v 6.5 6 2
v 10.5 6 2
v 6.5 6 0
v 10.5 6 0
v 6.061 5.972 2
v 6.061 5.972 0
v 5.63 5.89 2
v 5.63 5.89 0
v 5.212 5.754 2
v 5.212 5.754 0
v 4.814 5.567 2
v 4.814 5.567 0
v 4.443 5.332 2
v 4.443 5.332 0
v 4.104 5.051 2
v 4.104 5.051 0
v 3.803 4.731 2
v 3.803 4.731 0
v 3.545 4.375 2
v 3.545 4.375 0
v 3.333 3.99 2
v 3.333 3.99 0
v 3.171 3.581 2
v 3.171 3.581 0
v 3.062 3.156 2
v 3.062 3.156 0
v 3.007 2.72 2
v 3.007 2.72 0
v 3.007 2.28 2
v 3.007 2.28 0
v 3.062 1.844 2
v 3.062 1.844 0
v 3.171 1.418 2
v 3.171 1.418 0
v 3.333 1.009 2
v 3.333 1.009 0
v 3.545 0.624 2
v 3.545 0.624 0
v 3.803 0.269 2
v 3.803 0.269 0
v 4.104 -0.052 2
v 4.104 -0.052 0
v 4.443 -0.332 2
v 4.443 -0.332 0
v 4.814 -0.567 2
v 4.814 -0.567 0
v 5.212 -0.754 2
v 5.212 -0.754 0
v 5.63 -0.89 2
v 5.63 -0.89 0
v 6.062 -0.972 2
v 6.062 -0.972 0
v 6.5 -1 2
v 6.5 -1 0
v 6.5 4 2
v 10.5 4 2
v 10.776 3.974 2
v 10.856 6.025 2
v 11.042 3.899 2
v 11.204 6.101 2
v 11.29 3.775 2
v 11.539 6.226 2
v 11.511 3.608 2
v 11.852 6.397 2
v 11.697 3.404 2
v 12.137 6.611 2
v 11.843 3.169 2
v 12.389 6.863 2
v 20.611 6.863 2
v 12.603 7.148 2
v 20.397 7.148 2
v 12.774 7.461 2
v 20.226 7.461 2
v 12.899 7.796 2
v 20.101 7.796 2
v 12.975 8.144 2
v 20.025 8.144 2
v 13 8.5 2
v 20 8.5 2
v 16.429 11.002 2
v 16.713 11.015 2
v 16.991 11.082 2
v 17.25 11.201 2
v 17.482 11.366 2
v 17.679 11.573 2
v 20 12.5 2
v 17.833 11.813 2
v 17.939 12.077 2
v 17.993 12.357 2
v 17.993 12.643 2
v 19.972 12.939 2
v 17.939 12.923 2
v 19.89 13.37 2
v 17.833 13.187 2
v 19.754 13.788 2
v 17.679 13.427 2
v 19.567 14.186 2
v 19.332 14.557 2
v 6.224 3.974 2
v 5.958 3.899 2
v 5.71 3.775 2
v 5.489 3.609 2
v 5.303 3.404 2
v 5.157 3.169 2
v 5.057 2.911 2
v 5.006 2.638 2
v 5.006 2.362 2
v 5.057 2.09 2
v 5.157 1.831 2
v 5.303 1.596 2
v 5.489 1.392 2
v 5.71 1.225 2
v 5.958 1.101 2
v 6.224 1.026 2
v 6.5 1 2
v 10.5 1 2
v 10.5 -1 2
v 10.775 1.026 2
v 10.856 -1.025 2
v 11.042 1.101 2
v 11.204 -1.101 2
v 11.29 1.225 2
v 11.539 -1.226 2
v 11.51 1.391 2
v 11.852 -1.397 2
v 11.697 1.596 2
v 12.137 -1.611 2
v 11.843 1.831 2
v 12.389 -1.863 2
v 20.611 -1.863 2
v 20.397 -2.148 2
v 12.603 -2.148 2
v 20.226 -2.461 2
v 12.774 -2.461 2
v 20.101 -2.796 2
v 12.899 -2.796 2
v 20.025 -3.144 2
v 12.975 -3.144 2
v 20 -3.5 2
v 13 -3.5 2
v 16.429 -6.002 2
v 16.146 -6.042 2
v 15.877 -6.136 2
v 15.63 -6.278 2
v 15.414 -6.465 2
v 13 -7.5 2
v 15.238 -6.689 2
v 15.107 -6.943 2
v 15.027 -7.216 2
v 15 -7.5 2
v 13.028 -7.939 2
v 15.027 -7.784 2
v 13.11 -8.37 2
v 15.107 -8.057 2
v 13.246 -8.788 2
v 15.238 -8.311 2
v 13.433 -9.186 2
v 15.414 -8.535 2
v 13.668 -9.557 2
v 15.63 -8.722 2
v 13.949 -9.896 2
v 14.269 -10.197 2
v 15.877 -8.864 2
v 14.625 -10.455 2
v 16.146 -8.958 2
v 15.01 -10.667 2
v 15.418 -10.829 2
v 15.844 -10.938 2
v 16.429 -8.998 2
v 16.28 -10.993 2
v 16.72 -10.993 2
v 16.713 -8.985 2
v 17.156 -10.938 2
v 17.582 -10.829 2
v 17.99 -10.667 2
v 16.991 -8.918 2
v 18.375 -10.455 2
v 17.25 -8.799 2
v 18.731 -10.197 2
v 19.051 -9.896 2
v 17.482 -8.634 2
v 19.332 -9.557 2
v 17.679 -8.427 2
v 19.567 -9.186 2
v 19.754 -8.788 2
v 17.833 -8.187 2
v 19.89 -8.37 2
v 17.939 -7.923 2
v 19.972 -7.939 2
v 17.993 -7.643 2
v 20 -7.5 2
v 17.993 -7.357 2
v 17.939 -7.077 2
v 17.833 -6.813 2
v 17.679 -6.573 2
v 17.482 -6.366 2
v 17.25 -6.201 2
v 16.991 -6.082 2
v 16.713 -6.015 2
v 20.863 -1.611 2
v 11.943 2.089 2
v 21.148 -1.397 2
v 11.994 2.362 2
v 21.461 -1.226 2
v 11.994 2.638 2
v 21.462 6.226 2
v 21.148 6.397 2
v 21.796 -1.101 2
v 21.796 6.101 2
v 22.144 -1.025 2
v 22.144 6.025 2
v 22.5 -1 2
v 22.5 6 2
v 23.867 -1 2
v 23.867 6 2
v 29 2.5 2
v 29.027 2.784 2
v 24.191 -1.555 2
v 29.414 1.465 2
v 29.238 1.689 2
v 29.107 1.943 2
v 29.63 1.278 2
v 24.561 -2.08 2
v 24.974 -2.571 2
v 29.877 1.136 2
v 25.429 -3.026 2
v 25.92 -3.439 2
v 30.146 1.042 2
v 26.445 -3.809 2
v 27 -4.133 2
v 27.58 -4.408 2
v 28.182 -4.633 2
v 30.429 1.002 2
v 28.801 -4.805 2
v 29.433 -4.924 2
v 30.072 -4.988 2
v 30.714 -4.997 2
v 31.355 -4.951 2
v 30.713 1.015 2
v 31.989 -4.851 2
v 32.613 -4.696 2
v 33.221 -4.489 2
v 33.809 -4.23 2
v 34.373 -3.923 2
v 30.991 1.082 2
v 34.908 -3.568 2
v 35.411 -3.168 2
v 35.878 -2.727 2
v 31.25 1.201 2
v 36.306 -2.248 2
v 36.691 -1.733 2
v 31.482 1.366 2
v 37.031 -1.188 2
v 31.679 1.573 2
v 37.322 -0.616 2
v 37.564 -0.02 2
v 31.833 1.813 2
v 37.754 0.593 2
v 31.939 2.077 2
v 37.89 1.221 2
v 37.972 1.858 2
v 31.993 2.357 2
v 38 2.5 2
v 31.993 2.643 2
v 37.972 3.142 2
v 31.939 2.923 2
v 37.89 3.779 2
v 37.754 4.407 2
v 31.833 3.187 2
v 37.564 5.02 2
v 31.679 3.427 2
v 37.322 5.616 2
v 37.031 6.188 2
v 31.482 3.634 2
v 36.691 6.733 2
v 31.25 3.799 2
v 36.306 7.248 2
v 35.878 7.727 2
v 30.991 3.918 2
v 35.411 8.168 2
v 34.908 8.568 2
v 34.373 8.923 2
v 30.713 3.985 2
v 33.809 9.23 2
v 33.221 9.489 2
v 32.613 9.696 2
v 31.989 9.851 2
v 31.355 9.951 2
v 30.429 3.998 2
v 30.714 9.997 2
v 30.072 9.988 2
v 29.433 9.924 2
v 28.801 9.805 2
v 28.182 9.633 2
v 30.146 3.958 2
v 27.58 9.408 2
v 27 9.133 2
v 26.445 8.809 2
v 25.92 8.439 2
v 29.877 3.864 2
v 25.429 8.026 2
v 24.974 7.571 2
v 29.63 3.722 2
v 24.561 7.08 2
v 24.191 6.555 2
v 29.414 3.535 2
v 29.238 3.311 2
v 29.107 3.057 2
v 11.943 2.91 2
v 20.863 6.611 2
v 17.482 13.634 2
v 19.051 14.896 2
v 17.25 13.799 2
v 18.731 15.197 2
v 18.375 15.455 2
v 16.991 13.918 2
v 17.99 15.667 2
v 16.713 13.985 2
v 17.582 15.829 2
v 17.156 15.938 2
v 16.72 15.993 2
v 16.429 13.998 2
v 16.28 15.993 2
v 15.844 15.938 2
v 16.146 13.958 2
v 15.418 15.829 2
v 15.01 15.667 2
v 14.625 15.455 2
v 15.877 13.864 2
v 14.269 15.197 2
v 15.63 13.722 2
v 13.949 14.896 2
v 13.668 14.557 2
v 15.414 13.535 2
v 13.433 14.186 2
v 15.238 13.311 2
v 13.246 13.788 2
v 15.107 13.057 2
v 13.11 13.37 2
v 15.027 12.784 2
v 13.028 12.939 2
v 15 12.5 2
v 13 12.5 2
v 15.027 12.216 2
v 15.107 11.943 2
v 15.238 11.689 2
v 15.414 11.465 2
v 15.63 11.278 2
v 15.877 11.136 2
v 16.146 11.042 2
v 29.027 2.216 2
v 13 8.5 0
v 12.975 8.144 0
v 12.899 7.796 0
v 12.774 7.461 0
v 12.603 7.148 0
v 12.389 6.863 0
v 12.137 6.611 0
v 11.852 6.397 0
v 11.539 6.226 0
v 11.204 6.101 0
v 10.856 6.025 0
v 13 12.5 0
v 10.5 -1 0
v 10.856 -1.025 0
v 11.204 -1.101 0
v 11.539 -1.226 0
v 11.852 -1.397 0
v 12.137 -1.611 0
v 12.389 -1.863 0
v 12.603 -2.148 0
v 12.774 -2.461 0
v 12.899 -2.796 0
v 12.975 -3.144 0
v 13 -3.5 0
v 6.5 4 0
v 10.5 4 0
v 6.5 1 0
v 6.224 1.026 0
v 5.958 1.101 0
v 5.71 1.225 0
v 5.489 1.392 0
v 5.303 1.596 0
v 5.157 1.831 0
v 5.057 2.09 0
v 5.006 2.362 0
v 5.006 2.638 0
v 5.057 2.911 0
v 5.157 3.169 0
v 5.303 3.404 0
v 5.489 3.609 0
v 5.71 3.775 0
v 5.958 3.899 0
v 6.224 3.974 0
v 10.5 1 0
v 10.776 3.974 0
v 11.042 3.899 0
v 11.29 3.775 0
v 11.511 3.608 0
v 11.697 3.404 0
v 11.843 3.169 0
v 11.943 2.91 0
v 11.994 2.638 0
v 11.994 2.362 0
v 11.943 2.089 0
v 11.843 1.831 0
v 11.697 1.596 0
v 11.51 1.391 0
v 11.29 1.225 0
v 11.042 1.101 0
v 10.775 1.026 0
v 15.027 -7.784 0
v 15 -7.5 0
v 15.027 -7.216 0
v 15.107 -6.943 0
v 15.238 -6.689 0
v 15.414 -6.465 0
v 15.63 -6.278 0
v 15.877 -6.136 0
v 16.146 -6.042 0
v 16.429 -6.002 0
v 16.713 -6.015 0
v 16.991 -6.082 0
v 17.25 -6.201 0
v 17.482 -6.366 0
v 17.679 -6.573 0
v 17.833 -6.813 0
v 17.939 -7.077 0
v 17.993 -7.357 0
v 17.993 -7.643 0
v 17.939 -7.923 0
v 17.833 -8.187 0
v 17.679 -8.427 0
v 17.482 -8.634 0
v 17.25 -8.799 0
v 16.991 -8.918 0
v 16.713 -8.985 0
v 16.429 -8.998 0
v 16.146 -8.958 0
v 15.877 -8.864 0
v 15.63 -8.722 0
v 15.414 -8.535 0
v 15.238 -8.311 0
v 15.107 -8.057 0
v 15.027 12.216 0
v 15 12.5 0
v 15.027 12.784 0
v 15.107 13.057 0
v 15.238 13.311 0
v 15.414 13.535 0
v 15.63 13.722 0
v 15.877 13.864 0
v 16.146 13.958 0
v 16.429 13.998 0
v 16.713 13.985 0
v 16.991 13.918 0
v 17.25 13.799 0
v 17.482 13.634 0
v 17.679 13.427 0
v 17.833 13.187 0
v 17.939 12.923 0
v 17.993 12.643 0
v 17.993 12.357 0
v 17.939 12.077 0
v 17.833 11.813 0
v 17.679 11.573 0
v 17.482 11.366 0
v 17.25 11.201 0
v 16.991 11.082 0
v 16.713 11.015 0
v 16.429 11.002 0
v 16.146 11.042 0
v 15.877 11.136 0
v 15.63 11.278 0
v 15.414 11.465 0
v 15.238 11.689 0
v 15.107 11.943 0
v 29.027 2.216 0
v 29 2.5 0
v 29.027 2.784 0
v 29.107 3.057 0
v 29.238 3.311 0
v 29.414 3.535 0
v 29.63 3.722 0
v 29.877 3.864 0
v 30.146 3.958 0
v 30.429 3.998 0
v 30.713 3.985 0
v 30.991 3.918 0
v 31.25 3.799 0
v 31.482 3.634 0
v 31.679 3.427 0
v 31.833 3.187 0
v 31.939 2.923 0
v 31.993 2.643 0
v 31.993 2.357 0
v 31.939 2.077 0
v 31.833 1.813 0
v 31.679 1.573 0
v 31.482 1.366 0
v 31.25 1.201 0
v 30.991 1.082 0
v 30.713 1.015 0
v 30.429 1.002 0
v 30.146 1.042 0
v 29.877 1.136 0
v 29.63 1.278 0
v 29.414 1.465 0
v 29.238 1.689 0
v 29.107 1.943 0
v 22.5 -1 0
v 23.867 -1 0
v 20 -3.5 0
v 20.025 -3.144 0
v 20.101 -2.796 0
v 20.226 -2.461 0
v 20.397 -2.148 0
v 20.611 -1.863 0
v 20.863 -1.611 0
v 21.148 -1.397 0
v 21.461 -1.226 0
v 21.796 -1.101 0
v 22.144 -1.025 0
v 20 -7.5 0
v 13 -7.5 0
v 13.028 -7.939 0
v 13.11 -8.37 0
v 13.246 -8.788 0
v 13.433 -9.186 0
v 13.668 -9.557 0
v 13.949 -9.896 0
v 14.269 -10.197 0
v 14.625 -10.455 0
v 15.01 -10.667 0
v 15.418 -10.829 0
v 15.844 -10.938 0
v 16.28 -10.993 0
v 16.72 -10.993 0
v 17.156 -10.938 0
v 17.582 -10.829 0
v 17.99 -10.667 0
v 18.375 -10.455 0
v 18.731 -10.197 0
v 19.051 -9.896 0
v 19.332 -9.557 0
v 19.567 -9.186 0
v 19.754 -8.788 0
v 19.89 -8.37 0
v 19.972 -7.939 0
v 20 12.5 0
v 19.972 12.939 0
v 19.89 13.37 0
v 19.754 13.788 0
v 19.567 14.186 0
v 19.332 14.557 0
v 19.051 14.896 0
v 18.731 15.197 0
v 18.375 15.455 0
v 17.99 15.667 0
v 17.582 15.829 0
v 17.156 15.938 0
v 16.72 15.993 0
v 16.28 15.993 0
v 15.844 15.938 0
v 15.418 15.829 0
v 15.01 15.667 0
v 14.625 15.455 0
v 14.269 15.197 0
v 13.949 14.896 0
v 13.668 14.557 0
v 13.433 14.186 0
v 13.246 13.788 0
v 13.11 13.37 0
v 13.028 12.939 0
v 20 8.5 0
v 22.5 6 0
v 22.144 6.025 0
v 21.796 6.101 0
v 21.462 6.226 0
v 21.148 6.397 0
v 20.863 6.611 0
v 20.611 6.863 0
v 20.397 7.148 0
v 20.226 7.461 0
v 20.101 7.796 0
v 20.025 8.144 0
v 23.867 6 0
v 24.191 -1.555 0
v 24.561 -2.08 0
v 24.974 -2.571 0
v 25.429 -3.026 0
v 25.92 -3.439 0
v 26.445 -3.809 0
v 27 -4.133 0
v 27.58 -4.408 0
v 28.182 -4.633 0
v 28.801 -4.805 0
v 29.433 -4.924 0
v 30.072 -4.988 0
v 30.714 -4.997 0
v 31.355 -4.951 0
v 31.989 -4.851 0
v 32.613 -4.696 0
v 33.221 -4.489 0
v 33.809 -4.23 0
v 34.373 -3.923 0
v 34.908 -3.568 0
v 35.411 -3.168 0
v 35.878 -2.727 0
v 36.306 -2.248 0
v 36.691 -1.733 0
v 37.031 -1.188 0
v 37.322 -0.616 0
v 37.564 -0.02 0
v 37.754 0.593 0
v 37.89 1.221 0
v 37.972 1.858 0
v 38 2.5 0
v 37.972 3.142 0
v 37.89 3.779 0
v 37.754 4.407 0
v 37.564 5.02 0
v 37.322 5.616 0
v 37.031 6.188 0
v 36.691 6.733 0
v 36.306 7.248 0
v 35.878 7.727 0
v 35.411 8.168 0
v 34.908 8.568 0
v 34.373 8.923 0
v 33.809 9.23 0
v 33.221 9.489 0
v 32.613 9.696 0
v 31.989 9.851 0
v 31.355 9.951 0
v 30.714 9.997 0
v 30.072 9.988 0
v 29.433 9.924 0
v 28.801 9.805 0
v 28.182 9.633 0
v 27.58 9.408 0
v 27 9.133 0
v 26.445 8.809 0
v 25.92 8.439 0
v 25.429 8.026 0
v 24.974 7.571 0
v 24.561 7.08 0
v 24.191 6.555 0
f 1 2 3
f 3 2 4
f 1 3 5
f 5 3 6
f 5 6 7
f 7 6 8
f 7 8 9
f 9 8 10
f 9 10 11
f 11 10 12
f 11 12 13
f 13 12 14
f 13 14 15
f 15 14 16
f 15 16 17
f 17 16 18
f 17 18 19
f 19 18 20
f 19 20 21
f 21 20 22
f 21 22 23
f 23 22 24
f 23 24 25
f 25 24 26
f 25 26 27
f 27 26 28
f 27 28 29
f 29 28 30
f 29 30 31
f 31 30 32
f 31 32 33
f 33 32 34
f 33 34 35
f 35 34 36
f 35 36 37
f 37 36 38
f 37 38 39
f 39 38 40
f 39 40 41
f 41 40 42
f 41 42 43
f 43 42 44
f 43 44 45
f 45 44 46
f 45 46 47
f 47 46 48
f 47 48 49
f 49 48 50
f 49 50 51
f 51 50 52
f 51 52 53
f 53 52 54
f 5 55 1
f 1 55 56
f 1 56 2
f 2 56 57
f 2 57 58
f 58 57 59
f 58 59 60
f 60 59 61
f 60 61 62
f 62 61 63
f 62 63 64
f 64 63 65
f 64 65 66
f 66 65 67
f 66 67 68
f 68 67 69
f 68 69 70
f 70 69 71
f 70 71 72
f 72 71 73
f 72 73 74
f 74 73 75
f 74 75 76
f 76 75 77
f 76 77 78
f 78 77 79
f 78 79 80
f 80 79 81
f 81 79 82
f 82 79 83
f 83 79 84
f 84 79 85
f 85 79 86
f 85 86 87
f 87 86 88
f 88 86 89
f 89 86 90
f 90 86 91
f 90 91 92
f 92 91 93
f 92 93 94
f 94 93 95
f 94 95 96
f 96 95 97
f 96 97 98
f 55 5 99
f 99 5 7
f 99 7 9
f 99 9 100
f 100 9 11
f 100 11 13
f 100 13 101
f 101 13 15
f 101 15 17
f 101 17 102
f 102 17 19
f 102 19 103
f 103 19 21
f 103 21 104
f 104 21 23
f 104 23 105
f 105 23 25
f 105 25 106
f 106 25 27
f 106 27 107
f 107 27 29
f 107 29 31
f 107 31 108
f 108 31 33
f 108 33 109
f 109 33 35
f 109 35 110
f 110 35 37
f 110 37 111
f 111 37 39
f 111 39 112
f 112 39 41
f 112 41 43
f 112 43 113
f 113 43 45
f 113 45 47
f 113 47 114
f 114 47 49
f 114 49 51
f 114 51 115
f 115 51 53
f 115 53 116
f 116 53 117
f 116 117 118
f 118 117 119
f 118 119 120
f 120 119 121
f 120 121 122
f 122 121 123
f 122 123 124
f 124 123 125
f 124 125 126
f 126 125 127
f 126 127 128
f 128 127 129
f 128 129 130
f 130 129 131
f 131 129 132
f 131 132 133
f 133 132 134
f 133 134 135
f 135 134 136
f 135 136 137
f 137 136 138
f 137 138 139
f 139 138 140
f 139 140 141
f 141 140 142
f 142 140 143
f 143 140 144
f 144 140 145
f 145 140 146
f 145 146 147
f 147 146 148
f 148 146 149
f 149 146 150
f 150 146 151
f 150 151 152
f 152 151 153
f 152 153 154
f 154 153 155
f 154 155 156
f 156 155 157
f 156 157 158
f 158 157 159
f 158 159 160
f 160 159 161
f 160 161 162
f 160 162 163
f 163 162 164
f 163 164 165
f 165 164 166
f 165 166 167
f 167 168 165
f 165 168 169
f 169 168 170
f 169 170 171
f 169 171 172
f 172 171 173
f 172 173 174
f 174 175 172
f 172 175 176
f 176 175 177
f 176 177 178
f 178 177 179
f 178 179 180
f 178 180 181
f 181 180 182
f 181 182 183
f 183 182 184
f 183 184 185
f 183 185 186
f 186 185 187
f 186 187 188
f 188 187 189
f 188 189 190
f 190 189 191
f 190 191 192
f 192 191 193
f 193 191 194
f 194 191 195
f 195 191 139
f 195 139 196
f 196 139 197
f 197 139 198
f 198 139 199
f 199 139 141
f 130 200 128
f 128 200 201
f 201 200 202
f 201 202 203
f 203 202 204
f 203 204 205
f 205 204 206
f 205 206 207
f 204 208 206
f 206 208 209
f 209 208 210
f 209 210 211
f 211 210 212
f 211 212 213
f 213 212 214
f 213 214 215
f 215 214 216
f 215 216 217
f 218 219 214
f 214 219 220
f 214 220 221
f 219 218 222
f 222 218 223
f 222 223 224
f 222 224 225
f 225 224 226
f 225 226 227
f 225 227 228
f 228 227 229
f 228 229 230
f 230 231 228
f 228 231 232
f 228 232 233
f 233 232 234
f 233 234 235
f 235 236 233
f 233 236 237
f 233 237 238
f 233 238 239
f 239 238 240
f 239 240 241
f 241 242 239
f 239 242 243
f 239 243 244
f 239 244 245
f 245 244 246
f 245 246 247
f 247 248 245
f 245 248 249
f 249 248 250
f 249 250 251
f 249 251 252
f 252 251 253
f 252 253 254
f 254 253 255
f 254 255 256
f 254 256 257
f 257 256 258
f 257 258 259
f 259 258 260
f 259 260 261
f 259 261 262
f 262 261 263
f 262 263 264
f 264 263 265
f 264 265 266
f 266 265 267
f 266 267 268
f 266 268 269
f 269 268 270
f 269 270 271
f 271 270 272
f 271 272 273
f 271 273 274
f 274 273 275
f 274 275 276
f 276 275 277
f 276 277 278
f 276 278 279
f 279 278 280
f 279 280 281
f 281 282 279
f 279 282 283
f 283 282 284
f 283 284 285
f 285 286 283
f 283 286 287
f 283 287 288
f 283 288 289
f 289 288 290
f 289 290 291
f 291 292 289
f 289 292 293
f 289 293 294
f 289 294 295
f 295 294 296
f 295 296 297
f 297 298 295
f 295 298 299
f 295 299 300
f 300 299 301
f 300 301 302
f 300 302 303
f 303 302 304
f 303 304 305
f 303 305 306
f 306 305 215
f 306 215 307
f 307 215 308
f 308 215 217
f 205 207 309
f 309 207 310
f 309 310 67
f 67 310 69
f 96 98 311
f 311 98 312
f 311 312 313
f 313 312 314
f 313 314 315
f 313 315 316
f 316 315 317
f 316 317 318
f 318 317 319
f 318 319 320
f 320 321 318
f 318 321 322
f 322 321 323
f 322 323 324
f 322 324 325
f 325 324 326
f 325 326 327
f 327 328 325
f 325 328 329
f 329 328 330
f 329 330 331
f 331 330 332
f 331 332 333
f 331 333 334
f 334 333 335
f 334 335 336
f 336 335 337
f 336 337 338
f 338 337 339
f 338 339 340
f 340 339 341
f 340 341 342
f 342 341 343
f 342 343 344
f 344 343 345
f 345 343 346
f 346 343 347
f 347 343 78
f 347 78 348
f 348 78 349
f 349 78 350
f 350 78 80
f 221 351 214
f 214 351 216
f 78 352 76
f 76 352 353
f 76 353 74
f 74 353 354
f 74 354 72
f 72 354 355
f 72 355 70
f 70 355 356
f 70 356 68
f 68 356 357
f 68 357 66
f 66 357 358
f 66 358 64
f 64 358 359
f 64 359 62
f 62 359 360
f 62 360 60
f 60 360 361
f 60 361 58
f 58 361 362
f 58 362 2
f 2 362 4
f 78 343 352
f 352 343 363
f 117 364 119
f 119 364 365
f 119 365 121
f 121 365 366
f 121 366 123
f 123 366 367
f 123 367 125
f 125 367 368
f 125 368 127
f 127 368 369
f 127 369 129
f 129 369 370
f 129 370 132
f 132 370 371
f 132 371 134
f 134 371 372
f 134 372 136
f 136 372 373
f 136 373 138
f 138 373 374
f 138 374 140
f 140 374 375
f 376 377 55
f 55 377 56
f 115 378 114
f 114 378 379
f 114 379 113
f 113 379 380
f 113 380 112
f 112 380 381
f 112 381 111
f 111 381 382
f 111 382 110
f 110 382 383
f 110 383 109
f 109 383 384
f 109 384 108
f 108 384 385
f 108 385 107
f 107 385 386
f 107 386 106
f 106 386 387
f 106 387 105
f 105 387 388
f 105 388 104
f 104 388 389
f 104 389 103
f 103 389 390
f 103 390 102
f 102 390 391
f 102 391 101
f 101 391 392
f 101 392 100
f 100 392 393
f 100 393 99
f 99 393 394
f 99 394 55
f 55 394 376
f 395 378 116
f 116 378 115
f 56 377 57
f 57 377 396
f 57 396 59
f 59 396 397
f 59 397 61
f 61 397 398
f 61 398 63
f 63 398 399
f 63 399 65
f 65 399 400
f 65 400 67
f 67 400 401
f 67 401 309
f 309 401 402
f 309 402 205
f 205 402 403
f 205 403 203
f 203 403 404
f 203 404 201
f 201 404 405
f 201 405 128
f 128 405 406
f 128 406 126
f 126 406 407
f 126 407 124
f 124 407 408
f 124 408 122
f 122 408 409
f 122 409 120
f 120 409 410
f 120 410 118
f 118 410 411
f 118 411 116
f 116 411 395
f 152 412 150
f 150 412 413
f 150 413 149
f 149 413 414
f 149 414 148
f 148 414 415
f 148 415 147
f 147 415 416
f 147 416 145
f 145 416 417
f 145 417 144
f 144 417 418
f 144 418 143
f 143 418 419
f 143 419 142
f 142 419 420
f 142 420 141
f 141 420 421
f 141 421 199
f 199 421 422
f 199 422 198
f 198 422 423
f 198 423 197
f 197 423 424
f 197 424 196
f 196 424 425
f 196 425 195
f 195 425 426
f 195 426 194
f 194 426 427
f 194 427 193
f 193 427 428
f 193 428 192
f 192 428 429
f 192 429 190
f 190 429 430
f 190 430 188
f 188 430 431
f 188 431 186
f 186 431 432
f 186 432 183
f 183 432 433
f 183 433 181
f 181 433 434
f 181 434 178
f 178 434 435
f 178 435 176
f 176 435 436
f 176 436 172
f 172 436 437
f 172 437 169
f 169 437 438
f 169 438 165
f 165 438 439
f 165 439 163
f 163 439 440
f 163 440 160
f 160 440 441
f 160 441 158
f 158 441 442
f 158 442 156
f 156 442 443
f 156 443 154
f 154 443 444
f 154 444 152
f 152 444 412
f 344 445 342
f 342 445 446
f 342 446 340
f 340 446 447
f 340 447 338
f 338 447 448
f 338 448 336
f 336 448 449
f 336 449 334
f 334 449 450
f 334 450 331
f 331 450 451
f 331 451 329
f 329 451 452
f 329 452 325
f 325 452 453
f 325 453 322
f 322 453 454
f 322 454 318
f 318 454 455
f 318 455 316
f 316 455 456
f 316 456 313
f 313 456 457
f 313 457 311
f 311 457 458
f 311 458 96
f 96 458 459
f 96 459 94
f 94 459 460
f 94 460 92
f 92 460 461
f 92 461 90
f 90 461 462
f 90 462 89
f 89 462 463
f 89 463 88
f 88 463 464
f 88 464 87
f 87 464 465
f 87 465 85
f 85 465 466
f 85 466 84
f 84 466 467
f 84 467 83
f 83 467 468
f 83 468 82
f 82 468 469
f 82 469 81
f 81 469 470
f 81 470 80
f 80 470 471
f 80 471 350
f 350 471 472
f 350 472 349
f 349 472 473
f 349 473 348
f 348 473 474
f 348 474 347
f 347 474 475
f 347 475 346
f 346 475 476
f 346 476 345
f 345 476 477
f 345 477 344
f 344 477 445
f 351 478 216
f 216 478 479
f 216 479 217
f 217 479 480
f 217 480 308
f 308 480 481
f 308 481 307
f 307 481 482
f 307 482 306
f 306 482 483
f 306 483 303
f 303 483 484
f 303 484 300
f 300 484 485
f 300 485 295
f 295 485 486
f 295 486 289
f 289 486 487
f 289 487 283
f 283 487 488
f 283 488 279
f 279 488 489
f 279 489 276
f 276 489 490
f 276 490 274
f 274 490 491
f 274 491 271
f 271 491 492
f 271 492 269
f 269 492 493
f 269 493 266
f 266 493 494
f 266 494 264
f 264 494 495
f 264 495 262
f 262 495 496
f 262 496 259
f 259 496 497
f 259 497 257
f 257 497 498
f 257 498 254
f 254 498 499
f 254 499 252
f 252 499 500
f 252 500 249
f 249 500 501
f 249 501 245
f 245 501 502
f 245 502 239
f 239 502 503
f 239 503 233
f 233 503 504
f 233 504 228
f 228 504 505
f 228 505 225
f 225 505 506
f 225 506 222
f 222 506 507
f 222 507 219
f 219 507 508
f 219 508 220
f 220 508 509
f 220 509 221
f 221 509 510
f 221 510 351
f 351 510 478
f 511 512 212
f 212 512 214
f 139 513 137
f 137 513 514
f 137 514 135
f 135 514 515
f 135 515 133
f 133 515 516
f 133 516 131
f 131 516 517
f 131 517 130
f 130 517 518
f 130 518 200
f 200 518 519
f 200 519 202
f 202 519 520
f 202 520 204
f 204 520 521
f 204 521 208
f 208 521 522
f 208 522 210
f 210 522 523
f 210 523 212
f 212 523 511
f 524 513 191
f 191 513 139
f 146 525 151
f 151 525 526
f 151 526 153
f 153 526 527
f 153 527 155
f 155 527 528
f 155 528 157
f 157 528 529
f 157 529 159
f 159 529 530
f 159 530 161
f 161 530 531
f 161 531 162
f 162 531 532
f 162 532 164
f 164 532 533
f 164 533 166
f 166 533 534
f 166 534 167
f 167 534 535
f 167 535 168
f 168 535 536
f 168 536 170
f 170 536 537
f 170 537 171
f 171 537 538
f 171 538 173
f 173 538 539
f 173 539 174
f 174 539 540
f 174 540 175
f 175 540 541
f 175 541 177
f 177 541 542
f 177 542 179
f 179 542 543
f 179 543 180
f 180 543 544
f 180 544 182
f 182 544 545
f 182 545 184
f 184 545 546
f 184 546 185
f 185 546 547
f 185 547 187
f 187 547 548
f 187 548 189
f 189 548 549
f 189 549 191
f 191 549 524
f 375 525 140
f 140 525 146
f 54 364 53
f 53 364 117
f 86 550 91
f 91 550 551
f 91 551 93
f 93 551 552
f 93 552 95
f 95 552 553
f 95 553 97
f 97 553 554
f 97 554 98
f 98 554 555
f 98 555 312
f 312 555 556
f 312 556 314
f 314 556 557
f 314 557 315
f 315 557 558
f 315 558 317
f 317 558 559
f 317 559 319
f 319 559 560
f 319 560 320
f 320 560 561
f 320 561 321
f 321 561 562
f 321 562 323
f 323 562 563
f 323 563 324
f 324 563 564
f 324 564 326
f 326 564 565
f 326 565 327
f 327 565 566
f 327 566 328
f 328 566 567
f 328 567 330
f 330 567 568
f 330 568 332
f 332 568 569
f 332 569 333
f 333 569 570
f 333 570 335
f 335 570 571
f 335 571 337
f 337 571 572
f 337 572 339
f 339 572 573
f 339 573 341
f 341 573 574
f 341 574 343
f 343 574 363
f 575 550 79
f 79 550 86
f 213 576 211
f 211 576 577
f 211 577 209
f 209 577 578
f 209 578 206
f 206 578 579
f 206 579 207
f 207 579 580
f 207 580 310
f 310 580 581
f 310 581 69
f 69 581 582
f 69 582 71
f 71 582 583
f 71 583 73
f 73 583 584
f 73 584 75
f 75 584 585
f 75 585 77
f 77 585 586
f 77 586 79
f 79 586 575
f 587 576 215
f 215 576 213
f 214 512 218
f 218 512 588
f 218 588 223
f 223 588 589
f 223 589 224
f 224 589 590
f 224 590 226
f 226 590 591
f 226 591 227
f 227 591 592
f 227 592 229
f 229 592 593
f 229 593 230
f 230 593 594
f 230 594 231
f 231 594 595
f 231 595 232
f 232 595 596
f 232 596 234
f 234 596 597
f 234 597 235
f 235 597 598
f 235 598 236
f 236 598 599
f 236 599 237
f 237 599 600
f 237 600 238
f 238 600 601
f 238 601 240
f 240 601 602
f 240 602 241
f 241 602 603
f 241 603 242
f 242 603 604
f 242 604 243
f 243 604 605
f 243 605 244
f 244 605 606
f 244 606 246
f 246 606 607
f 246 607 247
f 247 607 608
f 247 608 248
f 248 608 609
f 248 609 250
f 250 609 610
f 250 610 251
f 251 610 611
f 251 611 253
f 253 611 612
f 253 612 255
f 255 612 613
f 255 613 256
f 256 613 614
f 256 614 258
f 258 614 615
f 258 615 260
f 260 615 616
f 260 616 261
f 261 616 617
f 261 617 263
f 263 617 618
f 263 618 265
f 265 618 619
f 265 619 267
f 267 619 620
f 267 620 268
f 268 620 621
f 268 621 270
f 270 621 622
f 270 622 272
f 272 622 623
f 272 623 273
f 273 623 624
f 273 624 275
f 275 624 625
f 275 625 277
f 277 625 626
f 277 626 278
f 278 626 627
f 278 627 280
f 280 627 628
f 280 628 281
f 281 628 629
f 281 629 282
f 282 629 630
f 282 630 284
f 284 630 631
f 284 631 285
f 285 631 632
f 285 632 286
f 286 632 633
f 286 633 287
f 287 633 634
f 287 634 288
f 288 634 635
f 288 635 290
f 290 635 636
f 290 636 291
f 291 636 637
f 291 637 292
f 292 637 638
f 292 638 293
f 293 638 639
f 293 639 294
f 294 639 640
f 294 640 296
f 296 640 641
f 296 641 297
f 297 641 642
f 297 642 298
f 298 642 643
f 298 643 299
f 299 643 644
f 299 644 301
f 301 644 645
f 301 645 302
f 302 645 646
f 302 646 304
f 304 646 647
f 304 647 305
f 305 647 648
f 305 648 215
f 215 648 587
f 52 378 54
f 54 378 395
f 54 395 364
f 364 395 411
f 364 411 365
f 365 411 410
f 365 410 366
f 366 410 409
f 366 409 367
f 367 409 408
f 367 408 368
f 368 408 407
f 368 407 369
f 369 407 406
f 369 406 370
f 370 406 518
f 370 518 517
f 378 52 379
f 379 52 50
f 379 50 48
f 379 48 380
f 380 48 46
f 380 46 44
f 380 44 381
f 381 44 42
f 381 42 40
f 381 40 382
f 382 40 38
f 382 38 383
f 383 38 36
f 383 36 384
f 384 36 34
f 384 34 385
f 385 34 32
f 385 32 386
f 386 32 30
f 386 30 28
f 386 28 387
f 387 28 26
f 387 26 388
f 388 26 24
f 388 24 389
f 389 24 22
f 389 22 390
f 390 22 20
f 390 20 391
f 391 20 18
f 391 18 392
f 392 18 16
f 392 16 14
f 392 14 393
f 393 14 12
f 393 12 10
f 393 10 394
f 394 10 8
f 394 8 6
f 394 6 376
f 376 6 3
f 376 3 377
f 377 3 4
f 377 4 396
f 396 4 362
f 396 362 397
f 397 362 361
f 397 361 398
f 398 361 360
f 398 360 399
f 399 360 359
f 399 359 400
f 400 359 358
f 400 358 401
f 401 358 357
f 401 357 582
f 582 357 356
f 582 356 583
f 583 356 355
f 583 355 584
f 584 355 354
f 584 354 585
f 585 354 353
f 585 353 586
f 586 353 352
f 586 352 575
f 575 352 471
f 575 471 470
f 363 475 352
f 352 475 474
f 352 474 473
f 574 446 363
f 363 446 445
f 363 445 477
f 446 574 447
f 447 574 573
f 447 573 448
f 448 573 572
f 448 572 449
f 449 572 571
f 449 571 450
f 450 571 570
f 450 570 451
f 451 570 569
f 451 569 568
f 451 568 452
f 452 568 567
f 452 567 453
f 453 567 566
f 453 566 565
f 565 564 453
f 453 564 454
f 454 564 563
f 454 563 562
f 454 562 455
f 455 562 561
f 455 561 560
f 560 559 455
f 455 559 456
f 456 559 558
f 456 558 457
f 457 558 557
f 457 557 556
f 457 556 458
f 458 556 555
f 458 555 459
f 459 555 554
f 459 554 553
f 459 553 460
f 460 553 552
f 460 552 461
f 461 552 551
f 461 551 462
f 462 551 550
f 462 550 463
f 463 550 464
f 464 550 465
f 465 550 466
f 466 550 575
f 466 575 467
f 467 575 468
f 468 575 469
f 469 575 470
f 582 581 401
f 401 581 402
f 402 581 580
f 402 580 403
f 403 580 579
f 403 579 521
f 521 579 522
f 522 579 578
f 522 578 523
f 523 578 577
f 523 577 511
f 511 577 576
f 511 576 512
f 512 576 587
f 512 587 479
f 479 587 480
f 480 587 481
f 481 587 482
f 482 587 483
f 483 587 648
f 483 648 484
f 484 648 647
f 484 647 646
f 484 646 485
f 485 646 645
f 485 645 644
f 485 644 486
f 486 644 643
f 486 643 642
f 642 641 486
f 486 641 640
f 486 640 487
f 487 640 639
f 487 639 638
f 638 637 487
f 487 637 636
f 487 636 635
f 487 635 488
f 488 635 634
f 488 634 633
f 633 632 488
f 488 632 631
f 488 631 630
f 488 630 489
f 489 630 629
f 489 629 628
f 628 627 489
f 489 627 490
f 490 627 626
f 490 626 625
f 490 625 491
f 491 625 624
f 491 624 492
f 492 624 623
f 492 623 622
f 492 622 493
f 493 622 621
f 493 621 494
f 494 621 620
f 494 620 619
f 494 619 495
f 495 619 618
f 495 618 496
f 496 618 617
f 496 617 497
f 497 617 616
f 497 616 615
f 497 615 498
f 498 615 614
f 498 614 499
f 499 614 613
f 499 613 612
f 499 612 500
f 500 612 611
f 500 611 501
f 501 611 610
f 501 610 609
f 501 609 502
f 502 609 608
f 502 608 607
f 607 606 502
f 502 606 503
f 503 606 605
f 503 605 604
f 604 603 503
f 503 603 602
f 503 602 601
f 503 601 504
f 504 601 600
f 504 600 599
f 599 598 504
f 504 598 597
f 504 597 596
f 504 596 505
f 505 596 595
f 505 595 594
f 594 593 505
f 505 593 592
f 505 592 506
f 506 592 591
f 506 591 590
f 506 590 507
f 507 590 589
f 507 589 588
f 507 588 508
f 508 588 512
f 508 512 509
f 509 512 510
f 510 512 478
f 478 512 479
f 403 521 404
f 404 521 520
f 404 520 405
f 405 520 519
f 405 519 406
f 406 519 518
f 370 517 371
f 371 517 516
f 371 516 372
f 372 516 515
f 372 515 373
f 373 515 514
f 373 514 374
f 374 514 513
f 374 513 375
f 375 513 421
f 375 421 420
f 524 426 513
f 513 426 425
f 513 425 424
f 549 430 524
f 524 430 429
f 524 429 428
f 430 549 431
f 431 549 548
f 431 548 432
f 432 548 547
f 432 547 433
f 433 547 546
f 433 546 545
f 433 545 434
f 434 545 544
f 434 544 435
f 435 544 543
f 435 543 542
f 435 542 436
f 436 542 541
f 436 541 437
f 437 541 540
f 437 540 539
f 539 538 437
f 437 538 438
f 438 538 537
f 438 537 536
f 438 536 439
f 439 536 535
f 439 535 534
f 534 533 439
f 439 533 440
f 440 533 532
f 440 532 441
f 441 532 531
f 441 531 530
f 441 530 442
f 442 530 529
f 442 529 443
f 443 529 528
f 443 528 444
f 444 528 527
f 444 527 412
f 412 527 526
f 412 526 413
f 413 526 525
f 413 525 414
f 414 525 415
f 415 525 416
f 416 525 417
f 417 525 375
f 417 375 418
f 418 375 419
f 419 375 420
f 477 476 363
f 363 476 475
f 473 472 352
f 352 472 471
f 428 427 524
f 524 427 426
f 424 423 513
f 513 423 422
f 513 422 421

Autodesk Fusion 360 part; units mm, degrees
sketch "Sketch1" plane through (0, 0, 0) normal (0, 0, 1) x (1, 0, 0)
  line L0 (3, 6) -> (38, 6)
  line L1 (38, 6) -> (38, -1)
  line L2 (38, -1) -> (3, -1)
  line L3 (3, -1) -> (3, 6)
  line L4 (3, 6) -> (5, 6)
  line L5 (5, 6) -> (5, -1)
  line L6 (5, -1) -> (3, -1)
  line L7 (3, -1) -> (3, 6)
  line L8 (5, 2.5) -> (12, 2.5)
  line L9 (12, 2.5) -> (12, 4)
  line L10 (12, 4) -> (5, 4)
  line L11 (5, 4) -> (5, 2.5)
  line L12 (5, 2.5) -> (12, 2.5)
  line L13 (12, 2.5) -> (12, 1)
  line L14 (12, 1) -> (5, 1)
  line L15 (5, 1) -> (5, 2.5)
  circle A0 centre (6.5, 2.5) radius 1.5
  circle A1 centre (10.5, 2.5) radius 1.5
  line L16 (3, -1) -> (13, -1)
  line L17 (13, -1) -> (13, 6)
  line L18 (13, 6) -> (3, 6)
  line L19 (3, 6) -> (3, -1)
  line L20 (13, 2.5) -> (20, 2.5)
  line L21 (20, 2.5) -> (20, 16)
  line L22 (20, 16) -> (13, 16)
  line L23 (13, 16) -> (13, 2.5)
  line L24 (13, 2.5) -> (20, 2.5)
  line L25 (20, 2.5) -> (20, -11)
  line L26 (20, -11) -> (13, -11)
  line L27 (13, -11) -> (13, 2.5)
  line L28 (20, 16) -> (20, 14)
  line L29 (13, 14) -> (13, 16)
  line L30 (13, -11) -> (20, -11)
  line L31 (20, -11) -> (20, -9)
  line L32 (13, -9) -> (13, -11)
  line L33 (20, -11) -> (20, -4)
  line L34 (20, -4) -> (13, -4)
  line L35 (13, -4) -> (13, -11)
  circle A2 centre (16.5, -7.5) radius 3.5
  circle A3 centre (16.5, -7.5) radius 1.5
  line L36 (13, 16) -> (20, 16)
  line L37 (20, 16) -> (20, 9)
  line L38 (20, 9) -> (13, 9)
  line L39 (13, 9) -> (13, 16)
  circle A4 centre (16.5, 12.5) radius 3.5
  circle A5 centre (16.5, 12.5) radius 1.5
  line L40 (38, 2.5) -> (23, 2.5)
  line L41 (23, 2.5) -> (23, 10)
  line L42 (23, 10) -> (38, 10)
  line L43 (38, 10) -> (38, 2.5)
  line L44 (23, 2.5) -> (38, 2.5)
  line L45 (38, 2.5) -> (38, -5)
  line L46 (38, -5) -> (23, -5)
  line L47 (23, -5) -> (23, 2.5)
  circle A6 centre (30.5, 2.5) radius 7.5
  circle A7 centre (30.5, 2.5) radius 1.5
  circle A8 centre (22.5, -3.5) radius 2.5
  circle A9 centre (22.5, 8.5) radius 2.5
  circle A10 centre (6.5, 2.5) radius 3.5
  circle A11 centre (10.5, 8.5) radius 2.5
  circle A12 centre (10.5, -3.5) radius 2.5
  dimension "d1" = 35
  dimension "d2" = 7
  dimension "d3" = 2
  dimension "d4" = 7
  dimension "d5" = 1.5
  dimension "d6" = 3
  dimension "d7" = 3
  dimension "d10" = 10
  dimension "d11" = 7
  dimension "d12" = 13.5
  dimension "d13" = 13.5
  dimension "d17" = 7
  dimension "d18" = 3
  dimension "d19" = 7
  dimension "d20" = 3
  dimension "d21" = 15
  dimension "d22" = 7.5
  dimension "d23" = 7.5
  dimension "d24" = 15
  dimension "d25" = 3
  dimension "d26" = 5
  dimension "d27" = 5
  dimension "d30" = 7
  dimension "d31" = 5
  dimension "d32" = 5
extrude "Extrude1" add sketch "Sketch1" along normal blind 2 contours L0 L3 L4 L5 L7 L18 L19 A10 | L0 L5 L18 A10 | L2 L3 L5 L6 L7 L16 L19 A10 | L5 L11 L15 A10 | L0 L2 L9 L10 L13 L14 L16 L17 L18 L23 L27 A10 | L5 L10 A10 | L2 L5 L16 A10 | L5 L14 A10 | L5 L10 L11 A0 | L5 L14 L15 A0 | L0 L21 L23 L38 | L0 L17 L20 L21 L23 L24 | L9 L10 A1 | L0 L21 A9 | L0 L2 L21 L25 L41 L47 | L2 L17 L20 L24 L25 L27 | L23 L38 L39 A4 | L13 L14 A1 | L2 L25 L27 L34 | A4 | L21 L37 L38 A4 | L2 L25 A8 | L27 L34 L35 A2 | L0 L41 A6 | A2 | L25 L33 L34 A2 | L0 A6 | L0 L40 L44 A6 A7 | L2 L47 A6 | L2 L40 L44 A6 A7 | L2 A6
extrude "Extrude2" add sketch "Sketch1" along normal blind 2 contours L2 L16 L27 A12
extrude "Extrude3" add sketch "Sketch1" along normal blind 2 contours L0 L18 L23 A11
extrude "Extrude4" cut sketch "Sketch1" along normal blind 2 contours L0 L3 L4 L5 L7 L18 L19 A10
extrude "Extrude5" cut sketch "Sketch1" along normal blind 2 contours L0 L5 L18 A10 | L2 L3 L5 L6 L7 L16 L19 A10 | L2 L5 L16 A10
